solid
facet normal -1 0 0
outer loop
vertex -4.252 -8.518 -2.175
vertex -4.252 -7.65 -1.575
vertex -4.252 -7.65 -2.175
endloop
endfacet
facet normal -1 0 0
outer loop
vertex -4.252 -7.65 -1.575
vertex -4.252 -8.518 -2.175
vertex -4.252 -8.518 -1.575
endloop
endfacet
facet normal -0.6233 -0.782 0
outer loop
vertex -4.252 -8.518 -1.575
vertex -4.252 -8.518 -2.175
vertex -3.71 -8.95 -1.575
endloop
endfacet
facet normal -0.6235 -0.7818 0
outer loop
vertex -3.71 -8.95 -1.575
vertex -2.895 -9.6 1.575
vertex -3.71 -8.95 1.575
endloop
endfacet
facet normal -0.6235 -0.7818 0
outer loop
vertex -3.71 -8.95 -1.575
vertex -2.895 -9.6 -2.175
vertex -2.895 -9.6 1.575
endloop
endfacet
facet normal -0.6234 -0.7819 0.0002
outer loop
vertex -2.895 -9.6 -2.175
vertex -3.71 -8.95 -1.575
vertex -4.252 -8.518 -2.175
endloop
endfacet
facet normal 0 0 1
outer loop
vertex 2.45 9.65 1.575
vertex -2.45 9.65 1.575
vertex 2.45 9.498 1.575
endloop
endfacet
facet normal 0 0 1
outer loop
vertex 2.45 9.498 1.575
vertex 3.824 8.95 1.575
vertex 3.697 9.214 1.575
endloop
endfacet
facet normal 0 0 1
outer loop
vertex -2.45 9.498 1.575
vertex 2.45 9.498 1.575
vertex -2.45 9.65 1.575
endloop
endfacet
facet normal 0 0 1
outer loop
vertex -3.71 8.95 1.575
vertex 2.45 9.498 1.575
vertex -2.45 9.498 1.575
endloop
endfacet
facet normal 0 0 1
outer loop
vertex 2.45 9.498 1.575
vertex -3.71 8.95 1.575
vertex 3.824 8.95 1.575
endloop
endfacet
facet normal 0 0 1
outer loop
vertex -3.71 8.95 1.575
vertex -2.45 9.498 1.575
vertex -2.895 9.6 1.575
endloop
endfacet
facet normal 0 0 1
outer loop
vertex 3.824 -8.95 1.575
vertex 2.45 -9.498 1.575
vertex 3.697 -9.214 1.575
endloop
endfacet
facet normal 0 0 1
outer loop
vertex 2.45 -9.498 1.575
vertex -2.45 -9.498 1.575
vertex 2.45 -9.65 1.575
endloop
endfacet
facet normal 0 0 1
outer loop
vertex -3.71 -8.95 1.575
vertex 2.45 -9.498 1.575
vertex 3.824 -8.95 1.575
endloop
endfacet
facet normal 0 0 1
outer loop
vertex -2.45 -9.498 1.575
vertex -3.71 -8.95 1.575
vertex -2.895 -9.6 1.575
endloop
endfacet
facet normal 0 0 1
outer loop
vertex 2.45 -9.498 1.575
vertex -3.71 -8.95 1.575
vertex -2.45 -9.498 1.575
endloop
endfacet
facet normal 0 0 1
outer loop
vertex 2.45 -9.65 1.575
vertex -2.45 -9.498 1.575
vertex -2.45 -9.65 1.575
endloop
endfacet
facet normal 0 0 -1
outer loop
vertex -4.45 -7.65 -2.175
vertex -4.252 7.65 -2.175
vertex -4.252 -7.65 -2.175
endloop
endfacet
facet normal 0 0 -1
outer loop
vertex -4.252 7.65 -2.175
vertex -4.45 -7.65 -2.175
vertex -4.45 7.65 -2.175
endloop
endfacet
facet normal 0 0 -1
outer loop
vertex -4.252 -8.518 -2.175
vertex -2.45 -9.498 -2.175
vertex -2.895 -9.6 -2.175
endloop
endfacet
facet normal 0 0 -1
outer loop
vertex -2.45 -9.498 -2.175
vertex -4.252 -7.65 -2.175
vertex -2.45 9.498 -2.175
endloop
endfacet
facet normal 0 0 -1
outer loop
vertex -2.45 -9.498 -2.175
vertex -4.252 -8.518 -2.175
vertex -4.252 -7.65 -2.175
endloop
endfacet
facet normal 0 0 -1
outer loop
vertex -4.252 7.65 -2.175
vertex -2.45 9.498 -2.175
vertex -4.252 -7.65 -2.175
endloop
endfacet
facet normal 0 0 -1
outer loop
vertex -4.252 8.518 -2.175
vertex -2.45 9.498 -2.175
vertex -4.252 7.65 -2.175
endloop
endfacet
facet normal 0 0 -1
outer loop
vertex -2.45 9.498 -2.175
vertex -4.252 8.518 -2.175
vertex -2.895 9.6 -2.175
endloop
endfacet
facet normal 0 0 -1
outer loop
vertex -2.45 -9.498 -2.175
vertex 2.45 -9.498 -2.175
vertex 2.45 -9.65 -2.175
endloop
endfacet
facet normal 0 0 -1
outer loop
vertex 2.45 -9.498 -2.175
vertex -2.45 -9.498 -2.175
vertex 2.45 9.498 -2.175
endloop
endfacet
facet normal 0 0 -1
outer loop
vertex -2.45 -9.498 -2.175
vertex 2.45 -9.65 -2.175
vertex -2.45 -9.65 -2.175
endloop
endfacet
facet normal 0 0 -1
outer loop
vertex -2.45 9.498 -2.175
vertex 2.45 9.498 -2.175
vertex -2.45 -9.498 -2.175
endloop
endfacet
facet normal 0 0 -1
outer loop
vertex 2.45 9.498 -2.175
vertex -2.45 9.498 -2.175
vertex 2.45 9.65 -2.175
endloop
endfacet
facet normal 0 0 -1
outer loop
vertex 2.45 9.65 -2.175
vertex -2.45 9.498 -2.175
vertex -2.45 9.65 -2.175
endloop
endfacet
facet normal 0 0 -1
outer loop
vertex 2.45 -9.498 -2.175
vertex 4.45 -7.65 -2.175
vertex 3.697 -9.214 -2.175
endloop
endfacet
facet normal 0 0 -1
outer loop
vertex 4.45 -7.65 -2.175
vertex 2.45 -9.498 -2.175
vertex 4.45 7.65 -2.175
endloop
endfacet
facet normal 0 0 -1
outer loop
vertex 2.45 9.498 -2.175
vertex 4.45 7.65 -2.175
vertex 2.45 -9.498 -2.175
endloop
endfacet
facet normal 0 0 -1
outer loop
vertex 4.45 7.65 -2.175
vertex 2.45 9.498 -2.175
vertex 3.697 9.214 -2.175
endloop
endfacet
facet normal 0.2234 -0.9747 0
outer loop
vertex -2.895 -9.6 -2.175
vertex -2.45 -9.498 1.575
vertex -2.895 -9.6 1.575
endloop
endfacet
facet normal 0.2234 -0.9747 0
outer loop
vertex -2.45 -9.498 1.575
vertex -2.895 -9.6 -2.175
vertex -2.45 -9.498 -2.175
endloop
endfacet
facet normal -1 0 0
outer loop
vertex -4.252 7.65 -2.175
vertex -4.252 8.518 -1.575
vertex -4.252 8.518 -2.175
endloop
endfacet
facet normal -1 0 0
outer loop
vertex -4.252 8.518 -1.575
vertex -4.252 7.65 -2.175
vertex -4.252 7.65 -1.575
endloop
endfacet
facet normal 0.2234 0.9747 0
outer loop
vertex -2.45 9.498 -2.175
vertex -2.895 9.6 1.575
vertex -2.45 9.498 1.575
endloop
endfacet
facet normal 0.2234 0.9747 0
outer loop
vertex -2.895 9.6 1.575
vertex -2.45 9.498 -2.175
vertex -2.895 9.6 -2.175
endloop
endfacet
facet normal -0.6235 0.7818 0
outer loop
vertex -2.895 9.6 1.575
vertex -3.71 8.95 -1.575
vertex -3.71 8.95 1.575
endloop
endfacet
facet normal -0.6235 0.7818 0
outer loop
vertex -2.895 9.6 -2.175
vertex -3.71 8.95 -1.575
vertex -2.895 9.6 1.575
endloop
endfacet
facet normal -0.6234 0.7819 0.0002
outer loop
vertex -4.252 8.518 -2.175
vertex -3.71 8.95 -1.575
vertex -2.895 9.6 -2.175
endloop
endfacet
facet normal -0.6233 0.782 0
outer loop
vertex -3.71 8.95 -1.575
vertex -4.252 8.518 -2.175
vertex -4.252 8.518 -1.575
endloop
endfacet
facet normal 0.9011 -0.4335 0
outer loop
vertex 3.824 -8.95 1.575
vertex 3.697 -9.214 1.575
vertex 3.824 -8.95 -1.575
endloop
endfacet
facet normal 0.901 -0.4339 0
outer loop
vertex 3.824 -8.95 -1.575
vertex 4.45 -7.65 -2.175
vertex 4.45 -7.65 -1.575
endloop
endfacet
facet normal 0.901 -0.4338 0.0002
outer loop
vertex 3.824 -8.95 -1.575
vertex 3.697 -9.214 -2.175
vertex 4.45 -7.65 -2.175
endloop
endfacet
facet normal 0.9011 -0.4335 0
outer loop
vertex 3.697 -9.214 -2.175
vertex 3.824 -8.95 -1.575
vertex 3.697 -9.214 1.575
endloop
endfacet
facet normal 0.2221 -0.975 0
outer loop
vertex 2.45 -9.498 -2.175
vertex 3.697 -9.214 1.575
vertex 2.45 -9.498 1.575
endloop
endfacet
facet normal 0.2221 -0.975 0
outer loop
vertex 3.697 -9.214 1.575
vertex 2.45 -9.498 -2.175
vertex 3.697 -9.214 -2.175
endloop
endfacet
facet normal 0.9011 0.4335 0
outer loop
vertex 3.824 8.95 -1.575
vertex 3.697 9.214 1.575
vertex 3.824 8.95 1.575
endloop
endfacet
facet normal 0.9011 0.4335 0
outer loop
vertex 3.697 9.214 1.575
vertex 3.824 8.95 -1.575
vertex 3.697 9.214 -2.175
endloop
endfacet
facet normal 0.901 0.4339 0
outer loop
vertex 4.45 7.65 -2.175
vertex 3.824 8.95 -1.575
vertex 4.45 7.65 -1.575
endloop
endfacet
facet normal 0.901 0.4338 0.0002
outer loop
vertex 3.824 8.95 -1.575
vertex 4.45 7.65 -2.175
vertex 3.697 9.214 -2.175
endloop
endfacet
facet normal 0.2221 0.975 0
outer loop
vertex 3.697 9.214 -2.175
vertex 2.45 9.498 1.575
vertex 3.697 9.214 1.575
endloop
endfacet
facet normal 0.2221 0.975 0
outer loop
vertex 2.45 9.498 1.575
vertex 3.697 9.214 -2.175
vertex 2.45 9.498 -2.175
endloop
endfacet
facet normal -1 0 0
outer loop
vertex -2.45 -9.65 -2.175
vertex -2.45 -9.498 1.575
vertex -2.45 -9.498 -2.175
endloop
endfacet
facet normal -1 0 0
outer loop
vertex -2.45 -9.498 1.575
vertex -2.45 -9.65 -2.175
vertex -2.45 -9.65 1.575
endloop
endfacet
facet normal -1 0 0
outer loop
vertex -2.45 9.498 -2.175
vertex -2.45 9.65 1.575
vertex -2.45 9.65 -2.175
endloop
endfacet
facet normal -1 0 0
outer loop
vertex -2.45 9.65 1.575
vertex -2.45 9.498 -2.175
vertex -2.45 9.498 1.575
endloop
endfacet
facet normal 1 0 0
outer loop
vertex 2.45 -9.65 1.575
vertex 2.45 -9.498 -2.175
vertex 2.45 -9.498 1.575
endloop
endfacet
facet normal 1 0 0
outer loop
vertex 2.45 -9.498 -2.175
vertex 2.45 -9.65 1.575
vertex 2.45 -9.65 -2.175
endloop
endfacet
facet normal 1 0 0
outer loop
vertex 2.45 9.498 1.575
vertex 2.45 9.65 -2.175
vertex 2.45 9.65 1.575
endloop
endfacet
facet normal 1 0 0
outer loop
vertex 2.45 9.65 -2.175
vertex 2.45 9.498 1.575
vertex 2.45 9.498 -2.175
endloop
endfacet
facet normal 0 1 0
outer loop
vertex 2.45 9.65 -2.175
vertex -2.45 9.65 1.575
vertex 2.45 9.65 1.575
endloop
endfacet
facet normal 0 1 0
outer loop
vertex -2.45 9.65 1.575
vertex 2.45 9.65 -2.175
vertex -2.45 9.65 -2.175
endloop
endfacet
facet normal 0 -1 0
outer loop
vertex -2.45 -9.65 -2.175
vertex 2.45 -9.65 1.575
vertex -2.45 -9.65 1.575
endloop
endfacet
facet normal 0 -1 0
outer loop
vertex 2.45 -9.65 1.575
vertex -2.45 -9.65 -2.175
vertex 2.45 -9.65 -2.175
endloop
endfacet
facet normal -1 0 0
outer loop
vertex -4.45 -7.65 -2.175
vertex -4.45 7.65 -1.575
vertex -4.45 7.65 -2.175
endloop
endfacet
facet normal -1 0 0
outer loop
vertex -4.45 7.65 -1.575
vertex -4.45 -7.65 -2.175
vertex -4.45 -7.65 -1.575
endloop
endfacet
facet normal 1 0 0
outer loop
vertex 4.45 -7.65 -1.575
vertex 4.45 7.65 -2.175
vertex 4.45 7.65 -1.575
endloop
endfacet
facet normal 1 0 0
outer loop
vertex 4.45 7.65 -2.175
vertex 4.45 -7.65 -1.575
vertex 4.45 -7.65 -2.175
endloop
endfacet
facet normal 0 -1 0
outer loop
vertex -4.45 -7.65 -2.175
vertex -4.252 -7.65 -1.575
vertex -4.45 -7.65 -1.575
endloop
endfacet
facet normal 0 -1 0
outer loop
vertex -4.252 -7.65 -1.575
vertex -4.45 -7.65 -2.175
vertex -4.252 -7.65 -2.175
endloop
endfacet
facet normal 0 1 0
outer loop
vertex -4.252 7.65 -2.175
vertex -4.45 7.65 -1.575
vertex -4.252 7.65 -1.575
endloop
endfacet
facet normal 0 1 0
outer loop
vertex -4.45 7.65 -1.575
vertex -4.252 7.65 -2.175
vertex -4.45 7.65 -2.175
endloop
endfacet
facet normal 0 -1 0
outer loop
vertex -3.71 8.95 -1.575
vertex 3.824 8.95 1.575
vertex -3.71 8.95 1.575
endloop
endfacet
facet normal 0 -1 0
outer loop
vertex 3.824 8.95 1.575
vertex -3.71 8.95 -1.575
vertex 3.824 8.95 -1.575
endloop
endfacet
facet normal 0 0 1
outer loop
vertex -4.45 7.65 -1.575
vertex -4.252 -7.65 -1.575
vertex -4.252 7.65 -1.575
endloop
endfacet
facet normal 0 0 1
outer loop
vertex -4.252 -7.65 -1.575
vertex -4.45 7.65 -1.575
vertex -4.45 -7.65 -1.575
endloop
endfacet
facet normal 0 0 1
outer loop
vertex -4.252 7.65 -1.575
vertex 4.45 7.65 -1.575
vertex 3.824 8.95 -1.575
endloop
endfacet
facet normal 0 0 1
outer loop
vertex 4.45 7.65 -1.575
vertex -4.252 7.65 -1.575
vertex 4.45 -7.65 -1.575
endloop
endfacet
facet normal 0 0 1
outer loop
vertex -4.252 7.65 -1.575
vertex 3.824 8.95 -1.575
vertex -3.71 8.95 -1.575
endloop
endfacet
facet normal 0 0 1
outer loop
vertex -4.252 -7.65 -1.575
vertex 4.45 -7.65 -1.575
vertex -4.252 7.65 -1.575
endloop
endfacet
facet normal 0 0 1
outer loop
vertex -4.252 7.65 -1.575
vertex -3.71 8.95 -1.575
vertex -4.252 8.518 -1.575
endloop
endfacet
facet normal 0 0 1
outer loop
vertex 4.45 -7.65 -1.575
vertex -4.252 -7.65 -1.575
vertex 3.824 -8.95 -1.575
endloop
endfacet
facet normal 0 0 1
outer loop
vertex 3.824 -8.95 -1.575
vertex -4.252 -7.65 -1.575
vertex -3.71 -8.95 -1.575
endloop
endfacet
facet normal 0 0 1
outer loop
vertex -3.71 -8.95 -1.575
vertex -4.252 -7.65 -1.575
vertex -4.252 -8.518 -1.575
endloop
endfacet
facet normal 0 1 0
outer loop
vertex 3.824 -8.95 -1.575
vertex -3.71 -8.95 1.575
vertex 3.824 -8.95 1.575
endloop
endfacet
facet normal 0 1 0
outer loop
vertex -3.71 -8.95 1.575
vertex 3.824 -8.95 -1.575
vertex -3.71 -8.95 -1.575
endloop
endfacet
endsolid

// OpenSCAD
use <MCAD/boxes.scad>

mainBox=[8.9, 19.3, 3.75];
yubiKey=[44, 17.9, 3.35];

difference() {
    translate([0,0,-0.3]) {
        roundedBox(mainBox, 2, true);
    }
    translate([0,0,.10]) {
        cube(yubiKey, center=true);
    }
}
